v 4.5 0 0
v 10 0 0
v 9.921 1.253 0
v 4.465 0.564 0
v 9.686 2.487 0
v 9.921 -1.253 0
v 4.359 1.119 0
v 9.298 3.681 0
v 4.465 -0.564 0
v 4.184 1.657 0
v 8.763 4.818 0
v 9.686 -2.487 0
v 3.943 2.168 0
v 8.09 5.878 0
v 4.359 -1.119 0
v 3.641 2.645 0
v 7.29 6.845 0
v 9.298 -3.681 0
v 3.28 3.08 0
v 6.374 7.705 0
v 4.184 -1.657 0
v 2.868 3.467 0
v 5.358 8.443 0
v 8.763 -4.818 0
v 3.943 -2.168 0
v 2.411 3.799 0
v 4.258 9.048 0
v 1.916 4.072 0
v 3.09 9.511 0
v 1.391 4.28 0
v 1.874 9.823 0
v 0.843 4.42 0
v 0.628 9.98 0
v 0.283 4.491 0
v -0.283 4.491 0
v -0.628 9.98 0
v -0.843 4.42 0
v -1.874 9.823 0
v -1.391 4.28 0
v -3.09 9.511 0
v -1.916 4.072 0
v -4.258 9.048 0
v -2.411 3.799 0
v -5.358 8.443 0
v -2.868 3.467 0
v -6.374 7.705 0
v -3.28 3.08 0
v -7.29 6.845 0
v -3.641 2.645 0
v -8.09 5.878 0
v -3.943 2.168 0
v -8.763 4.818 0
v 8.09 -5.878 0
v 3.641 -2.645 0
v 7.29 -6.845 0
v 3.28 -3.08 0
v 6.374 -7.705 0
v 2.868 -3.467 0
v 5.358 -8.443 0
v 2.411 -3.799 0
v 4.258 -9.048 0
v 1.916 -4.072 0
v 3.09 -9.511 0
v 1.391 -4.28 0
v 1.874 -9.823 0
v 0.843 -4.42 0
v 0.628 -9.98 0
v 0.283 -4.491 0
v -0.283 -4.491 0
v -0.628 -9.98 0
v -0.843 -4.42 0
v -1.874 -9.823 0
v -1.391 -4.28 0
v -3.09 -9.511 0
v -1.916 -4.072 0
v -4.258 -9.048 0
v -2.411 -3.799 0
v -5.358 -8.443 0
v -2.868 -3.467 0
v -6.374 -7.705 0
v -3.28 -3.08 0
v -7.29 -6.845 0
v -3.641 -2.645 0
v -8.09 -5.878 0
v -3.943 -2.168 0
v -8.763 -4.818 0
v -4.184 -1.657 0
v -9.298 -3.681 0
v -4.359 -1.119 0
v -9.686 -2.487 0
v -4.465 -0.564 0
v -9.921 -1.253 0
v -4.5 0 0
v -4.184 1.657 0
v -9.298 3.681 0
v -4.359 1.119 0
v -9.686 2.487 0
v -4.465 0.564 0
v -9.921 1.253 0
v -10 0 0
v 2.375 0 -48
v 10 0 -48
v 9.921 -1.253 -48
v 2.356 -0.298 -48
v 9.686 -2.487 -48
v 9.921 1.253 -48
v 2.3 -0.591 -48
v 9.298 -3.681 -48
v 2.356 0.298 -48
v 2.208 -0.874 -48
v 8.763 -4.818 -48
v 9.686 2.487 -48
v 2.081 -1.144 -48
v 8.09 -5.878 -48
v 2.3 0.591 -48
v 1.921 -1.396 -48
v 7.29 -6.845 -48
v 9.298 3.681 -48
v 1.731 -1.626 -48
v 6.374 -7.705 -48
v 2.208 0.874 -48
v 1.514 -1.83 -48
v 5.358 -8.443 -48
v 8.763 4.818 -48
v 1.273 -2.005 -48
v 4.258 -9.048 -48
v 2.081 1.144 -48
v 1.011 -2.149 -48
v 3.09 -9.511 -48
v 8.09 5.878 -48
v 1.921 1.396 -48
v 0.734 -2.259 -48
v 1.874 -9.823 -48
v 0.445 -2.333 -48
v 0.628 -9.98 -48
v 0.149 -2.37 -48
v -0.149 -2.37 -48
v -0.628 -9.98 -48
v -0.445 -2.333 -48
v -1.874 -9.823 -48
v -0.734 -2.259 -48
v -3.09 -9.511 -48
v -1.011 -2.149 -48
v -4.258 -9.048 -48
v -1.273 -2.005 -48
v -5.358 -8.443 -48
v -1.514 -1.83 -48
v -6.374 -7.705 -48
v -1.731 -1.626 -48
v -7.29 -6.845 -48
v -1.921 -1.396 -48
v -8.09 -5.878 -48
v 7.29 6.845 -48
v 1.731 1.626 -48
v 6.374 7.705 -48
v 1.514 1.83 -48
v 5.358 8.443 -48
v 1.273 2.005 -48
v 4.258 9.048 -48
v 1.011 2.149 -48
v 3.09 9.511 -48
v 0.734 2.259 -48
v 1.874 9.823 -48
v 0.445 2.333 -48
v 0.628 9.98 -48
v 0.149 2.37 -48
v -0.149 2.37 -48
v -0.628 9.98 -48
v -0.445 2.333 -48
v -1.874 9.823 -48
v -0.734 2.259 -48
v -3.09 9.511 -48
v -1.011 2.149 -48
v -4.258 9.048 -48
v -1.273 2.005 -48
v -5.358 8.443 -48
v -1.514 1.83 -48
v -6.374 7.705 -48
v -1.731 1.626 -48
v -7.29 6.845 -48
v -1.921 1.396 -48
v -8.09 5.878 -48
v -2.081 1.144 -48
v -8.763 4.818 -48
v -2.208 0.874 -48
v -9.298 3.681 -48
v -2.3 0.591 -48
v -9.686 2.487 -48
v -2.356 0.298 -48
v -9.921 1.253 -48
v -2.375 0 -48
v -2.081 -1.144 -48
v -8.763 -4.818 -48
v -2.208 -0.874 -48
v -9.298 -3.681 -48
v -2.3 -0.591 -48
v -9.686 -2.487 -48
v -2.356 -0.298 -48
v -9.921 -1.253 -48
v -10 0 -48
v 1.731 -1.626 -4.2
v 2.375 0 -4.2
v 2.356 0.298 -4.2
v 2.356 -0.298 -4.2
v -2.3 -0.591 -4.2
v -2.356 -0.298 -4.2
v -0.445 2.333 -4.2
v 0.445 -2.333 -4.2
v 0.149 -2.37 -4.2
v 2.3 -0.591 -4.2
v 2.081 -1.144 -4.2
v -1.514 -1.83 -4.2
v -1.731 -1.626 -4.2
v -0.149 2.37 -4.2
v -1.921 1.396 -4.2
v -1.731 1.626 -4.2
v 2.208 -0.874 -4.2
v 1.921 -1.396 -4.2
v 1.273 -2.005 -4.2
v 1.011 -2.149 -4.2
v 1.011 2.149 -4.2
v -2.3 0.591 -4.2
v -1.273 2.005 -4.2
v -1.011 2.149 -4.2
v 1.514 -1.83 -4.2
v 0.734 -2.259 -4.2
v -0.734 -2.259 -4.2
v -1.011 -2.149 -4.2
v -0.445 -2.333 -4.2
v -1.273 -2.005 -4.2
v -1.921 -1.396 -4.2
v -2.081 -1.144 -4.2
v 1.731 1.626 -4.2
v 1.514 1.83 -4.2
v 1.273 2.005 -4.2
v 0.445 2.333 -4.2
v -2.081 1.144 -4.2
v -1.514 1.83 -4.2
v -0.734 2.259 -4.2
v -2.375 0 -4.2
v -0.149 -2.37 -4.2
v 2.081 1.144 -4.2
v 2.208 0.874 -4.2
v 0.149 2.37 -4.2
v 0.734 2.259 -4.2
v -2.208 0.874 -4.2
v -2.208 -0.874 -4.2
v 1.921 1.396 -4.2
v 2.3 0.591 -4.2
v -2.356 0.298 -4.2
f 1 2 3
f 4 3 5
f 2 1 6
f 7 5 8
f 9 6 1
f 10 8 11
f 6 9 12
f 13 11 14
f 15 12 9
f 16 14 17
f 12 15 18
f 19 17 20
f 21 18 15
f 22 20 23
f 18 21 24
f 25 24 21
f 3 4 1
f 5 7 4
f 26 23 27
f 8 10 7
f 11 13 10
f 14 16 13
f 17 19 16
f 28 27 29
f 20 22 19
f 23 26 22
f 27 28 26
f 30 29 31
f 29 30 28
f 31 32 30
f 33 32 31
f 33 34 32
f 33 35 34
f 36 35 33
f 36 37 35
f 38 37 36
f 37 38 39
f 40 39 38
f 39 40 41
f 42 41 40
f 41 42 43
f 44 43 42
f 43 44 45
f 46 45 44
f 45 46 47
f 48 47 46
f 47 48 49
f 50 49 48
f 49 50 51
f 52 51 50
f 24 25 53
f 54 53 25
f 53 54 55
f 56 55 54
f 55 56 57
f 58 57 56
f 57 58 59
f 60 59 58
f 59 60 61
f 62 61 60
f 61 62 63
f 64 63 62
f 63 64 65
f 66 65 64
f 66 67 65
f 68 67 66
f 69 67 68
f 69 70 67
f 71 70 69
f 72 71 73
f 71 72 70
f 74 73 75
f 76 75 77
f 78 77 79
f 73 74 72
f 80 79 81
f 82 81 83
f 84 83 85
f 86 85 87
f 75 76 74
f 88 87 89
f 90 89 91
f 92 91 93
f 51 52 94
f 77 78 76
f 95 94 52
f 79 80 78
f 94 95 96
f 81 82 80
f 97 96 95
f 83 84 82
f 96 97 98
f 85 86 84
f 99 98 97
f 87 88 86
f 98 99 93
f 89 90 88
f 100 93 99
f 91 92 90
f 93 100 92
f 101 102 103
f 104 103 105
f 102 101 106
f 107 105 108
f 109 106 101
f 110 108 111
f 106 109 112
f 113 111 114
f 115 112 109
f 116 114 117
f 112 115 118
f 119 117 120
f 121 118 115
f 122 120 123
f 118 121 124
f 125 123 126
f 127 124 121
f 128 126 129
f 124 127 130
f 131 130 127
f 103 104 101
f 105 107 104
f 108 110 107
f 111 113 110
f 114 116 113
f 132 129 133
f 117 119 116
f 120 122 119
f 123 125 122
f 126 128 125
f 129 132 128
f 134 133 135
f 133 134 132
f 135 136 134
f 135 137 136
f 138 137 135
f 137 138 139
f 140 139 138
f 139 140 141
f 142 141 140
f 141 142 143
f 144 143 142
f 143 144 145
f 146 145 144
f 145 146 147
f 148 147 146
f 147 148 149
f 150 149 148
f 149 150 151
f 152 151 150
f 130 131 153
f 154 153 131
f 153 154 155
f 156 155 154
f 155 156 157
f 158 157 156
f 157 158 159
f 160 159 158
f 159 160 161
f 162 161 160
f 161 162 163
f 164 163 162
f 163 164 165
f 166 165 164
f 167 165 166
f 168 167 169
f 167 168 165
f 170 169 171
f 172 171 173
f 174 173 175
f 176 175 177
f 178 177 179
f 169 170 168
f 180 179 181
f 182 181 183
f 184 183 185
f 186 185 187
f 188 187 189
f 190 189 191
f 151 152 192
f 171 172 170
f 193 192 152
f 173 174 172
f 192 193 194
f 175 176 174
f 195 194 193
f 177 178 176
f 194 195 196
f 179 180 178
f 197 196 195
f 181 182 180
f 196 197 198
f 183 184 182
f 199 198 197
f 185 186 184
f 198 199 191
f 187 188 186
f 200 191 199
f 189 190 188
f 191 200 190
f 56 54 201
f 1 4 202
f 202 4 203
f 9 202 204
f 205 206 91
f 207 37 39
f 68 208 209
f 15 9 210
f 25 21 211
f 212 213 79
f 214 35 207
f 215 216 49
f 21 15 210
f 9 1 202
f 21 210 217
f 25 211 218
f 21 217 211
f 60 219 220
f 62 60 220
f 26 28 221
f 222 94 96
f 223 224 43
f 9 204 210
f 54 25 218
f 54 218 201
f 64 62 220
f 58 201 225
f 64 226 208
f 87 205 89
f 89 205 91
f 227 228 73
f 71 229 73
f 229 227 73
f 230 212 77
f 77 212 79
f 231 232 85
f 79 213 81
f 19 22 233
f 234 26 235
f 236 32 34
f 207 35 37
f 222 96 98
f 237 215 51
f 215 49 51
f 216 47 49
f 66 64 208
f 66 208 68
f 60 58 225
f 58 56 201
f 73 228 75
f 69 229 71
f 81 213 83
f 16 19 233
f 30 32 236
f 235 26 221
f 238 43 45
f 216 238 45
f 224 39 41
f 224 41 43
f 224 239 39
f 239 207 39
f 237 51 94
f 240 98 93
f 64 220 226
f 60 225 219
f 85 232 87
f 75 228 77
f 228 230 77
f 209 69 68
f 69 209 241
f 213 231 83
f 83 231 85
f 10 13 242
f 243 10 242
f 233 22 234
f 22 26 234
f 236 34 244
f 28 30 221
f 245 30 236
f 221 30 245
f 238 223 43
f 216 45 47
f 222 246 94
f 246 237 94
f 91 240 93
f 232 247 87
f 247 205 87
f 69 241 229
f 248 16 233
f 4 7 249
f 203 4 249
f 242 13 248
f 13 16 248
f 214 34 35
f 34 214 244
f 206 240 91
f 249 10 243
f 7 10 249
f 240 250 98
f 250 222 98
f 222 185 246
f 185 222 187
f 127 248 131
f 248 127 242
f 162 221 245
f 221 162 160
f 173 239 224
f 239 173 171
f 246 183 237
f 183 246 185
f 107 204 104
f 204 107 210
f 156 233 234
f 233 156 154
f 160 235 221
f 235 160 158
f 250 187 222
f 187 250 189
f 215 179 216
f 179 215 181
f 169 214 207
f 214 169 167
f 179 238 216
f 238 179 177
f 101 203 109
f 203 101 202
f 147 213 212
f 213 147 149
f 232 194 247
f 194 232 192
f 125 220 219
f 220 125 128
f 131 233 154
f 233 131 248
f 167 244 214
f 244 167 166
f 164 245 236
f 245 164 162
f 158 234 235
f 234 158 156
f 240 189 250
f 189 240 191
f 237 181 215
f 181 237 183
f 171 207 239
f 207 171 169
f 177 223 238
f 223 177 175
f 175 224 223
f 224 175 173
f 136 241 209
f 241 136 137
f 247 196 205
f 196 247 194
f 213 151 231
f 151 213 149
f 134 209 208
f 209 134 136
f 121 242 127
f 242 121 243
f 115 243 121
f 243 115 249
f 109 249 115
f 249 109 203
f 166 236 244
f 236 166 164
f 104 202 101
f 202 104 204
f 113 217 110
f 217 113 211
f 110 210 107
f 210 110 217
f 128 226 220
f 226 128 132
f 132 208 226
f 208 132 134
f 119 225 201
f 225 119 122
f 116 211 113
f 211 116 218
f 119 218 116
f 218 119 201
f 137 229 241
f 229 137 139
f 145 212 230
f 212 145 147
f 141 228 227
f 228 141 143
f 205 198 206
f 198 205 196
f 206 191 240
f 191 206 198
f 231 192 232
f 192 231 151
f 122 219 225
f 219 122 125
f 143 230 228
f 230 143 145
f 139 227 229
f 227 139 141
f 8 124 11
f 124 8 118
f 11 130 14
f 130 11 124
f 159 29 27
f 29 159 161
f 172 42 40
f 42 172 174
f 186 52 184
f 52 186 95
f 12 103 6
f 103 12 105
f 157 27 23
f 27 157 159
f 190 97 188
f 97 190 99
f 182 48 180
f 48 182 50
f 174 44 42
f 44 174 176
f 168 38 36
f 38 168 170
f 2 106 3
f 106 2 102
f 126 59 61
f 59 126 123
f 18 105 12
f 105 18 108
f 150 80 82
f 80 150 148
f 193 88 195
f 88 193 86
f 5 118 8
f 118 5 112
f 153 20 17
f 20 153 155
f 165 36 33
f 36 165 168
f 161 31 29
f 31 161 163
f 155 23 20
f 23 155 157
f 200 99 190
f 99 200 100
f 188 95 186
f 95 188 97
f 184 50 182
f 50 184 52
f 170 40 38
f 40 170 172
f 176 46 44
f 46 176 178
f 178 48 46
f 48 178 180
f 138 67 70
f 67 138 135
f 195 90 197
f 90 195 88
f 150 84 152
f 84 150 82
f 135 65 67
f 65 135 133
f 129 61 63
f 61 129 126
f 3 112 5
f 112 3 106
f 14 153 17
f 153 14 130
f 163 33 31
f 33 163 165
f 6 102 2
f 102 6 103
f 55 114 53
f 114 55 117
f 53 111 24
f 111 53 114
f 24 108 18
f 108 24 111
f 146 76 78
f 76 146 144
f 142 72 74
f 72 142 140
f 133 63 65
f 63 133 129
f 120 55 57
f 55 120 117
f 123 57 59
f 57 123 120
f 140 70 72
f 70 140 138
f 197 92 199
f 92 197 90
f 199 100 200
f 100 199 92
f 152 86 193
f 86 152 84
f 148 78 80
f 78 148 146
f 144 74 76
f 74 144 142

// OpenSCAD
$fn = 50;


difference() {
	union() {
		translate(v = [0, 0, -48.0000000000]) {
			cylinder(h = 48, r = 10.0000000000);
		}
		cylinder(h = 0, r = 19.0000000000);
	}
	union() {
		translate(v = [0, 0, 0]) {
			rotate(a = [0, 0, 0]) {
				difference() {
					union() {
						#translate(v = [0, 0, -48.0000000000]) {
							cylinder(h = 48, r = 2.2500000000);
						}
						#translate(v = [0, 0, -4.2000000000]) {
							cylinder(h = 4.2000000000, r = 10.0000000000, r1 = 2.3750000000, r2 = 4.5000000000);
						}
						#translate(v = [0, 0, -48.0000000000]) {
							cylinder(h = 48, r = 2.3750000000);
						}
						#translate(v = [0, 0, -48.0000000000]) {
							cylinder(h = 48, r = 2.2500000000);
						}
					}
					union();
				}
			}
		}
	}
}
